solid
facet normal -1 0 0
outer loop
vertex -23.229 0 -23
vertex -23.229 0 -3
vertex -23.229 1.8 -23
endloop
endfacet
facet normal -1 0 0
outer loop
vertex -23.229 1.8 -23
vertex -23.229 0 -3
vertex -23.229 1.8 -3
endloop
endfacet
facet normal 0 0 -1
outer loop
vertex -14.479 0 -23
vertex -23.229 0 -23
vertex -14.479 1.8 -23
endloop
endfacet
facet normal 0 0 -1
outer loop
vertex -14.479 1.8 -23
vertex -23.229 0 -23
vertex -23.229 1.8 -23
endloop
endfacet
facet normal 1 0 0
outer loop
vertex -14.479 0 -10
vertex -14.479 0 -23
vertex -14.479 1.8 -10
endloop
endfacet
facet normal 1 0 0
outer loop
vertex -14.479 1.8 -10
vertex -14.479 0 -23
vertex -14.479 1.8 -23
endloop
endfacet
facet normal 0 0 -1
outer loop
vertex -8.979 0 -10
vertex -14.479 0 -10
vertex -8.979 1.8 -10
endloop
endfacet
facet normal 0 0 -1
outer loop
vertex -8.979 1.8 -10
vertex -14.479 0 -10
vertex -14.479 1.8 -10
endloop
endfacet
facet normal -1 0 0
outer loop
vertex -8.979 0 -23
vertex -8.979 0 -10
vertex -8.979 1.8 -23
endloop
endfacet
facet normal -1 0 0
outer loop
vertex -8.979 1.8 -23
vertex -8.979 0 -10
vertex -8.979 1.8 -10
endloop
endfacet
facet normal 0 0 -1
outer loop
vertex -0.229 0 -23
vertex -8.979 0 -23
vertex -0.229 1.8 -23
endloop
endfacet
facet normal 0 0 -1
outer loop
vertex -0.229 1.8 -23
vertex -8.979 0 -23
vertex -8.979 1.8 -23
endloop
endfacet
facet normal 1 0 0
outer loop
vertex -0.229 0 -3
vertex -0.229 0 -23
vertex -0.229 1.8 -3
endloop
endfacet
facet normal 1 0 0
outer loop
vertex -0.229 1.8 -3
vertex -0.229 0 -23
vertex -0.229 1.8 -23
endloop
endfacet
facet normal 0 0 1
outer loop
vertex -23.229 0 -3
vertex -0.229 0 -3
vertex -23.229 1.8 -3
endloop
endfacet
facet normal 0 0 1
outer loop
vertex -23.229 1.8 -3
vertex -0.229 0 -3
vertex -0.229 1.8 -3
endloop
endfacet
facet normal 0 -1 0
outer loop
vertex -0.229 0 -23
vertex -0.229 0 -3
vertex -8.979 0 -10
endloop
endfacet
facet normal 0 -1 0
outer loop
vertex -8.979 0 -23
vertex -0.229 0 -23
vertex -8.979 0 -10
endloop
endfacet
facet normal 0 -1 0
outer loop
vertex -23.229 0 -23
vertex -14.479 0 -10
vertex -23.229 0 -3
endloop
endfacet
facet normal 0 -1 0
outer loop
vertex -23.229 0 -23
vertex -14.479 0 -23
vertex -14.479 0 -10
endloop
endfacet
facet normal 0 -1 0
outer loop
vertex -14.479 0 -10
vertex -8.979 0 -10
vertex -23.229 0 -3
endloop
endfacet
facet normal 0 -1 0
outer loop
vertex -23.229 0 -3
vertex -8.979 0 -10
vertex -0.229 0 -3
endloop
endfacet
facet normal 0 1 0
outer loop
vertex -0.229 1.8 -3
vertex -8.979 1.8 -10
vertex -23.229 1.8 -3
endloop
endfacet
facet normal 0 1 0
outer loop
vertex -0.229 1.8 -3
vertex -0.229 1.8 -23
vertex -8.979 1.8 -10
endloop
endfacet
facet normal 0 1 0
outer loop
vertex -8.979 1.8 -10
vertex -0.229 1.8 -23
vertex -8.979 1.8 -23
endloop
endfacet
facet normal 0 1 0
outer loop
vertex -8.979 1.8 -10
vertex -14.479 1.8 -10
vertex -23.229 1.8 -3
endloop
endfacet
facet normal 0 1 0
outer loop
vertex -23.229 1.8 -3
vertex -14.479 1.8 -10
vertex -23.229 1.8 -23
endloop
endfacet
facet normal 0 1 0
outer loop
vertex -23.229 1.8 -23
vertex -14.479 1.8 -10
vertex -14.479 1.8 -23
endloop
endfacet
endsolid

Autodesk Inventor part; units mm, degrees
ref_plane "YZ Plane" through (0, 0, 0) normal (1, 0, 0) x (0, 1, 0)
ref_plane "XZ Plane" through (0, 0, 0) normal (0, 1, 0) x (-1, 0, 0)
ref_plane "XY Plane" through (0, 0, 0) normal (0, 0, 1) x (1, 0, 0)
sketch "Sketch1" plane through (0, 0, 0) normal (0, 1, 0) x (-1, 0, 0)
  line L0 (0.2295, -3) -> (23.2295, -3)
  line L1 (23.2295, -3) -> (23.2295, -23)
  line L2 (0.2295, -23) -> (0.2295, -3)
  line L3 (8.9795, -23) -> (8.9795, -10)
  line L4 (8.9795, -10) -> (14.4795, -10)
  line L5 (14.4795, -10) -> (14.4795, -23)
  line L6 (11.7295, -5) -> (11.7295, -18.3097) construction
  line L7 (23.2295, -23) -> (14.4795, -23)
  line L8 (8.9795, -23) -> (0.2295, -23)
  dimension "d4" = 23
  dimension "d5" = 20
  dimension "d8" = 5.5
  dimension "d9" = 13
extrude "Extrusion1" add sketch "Sketch1" along normal blind 1.8
properties part number "Distance_test_rig_insert"
